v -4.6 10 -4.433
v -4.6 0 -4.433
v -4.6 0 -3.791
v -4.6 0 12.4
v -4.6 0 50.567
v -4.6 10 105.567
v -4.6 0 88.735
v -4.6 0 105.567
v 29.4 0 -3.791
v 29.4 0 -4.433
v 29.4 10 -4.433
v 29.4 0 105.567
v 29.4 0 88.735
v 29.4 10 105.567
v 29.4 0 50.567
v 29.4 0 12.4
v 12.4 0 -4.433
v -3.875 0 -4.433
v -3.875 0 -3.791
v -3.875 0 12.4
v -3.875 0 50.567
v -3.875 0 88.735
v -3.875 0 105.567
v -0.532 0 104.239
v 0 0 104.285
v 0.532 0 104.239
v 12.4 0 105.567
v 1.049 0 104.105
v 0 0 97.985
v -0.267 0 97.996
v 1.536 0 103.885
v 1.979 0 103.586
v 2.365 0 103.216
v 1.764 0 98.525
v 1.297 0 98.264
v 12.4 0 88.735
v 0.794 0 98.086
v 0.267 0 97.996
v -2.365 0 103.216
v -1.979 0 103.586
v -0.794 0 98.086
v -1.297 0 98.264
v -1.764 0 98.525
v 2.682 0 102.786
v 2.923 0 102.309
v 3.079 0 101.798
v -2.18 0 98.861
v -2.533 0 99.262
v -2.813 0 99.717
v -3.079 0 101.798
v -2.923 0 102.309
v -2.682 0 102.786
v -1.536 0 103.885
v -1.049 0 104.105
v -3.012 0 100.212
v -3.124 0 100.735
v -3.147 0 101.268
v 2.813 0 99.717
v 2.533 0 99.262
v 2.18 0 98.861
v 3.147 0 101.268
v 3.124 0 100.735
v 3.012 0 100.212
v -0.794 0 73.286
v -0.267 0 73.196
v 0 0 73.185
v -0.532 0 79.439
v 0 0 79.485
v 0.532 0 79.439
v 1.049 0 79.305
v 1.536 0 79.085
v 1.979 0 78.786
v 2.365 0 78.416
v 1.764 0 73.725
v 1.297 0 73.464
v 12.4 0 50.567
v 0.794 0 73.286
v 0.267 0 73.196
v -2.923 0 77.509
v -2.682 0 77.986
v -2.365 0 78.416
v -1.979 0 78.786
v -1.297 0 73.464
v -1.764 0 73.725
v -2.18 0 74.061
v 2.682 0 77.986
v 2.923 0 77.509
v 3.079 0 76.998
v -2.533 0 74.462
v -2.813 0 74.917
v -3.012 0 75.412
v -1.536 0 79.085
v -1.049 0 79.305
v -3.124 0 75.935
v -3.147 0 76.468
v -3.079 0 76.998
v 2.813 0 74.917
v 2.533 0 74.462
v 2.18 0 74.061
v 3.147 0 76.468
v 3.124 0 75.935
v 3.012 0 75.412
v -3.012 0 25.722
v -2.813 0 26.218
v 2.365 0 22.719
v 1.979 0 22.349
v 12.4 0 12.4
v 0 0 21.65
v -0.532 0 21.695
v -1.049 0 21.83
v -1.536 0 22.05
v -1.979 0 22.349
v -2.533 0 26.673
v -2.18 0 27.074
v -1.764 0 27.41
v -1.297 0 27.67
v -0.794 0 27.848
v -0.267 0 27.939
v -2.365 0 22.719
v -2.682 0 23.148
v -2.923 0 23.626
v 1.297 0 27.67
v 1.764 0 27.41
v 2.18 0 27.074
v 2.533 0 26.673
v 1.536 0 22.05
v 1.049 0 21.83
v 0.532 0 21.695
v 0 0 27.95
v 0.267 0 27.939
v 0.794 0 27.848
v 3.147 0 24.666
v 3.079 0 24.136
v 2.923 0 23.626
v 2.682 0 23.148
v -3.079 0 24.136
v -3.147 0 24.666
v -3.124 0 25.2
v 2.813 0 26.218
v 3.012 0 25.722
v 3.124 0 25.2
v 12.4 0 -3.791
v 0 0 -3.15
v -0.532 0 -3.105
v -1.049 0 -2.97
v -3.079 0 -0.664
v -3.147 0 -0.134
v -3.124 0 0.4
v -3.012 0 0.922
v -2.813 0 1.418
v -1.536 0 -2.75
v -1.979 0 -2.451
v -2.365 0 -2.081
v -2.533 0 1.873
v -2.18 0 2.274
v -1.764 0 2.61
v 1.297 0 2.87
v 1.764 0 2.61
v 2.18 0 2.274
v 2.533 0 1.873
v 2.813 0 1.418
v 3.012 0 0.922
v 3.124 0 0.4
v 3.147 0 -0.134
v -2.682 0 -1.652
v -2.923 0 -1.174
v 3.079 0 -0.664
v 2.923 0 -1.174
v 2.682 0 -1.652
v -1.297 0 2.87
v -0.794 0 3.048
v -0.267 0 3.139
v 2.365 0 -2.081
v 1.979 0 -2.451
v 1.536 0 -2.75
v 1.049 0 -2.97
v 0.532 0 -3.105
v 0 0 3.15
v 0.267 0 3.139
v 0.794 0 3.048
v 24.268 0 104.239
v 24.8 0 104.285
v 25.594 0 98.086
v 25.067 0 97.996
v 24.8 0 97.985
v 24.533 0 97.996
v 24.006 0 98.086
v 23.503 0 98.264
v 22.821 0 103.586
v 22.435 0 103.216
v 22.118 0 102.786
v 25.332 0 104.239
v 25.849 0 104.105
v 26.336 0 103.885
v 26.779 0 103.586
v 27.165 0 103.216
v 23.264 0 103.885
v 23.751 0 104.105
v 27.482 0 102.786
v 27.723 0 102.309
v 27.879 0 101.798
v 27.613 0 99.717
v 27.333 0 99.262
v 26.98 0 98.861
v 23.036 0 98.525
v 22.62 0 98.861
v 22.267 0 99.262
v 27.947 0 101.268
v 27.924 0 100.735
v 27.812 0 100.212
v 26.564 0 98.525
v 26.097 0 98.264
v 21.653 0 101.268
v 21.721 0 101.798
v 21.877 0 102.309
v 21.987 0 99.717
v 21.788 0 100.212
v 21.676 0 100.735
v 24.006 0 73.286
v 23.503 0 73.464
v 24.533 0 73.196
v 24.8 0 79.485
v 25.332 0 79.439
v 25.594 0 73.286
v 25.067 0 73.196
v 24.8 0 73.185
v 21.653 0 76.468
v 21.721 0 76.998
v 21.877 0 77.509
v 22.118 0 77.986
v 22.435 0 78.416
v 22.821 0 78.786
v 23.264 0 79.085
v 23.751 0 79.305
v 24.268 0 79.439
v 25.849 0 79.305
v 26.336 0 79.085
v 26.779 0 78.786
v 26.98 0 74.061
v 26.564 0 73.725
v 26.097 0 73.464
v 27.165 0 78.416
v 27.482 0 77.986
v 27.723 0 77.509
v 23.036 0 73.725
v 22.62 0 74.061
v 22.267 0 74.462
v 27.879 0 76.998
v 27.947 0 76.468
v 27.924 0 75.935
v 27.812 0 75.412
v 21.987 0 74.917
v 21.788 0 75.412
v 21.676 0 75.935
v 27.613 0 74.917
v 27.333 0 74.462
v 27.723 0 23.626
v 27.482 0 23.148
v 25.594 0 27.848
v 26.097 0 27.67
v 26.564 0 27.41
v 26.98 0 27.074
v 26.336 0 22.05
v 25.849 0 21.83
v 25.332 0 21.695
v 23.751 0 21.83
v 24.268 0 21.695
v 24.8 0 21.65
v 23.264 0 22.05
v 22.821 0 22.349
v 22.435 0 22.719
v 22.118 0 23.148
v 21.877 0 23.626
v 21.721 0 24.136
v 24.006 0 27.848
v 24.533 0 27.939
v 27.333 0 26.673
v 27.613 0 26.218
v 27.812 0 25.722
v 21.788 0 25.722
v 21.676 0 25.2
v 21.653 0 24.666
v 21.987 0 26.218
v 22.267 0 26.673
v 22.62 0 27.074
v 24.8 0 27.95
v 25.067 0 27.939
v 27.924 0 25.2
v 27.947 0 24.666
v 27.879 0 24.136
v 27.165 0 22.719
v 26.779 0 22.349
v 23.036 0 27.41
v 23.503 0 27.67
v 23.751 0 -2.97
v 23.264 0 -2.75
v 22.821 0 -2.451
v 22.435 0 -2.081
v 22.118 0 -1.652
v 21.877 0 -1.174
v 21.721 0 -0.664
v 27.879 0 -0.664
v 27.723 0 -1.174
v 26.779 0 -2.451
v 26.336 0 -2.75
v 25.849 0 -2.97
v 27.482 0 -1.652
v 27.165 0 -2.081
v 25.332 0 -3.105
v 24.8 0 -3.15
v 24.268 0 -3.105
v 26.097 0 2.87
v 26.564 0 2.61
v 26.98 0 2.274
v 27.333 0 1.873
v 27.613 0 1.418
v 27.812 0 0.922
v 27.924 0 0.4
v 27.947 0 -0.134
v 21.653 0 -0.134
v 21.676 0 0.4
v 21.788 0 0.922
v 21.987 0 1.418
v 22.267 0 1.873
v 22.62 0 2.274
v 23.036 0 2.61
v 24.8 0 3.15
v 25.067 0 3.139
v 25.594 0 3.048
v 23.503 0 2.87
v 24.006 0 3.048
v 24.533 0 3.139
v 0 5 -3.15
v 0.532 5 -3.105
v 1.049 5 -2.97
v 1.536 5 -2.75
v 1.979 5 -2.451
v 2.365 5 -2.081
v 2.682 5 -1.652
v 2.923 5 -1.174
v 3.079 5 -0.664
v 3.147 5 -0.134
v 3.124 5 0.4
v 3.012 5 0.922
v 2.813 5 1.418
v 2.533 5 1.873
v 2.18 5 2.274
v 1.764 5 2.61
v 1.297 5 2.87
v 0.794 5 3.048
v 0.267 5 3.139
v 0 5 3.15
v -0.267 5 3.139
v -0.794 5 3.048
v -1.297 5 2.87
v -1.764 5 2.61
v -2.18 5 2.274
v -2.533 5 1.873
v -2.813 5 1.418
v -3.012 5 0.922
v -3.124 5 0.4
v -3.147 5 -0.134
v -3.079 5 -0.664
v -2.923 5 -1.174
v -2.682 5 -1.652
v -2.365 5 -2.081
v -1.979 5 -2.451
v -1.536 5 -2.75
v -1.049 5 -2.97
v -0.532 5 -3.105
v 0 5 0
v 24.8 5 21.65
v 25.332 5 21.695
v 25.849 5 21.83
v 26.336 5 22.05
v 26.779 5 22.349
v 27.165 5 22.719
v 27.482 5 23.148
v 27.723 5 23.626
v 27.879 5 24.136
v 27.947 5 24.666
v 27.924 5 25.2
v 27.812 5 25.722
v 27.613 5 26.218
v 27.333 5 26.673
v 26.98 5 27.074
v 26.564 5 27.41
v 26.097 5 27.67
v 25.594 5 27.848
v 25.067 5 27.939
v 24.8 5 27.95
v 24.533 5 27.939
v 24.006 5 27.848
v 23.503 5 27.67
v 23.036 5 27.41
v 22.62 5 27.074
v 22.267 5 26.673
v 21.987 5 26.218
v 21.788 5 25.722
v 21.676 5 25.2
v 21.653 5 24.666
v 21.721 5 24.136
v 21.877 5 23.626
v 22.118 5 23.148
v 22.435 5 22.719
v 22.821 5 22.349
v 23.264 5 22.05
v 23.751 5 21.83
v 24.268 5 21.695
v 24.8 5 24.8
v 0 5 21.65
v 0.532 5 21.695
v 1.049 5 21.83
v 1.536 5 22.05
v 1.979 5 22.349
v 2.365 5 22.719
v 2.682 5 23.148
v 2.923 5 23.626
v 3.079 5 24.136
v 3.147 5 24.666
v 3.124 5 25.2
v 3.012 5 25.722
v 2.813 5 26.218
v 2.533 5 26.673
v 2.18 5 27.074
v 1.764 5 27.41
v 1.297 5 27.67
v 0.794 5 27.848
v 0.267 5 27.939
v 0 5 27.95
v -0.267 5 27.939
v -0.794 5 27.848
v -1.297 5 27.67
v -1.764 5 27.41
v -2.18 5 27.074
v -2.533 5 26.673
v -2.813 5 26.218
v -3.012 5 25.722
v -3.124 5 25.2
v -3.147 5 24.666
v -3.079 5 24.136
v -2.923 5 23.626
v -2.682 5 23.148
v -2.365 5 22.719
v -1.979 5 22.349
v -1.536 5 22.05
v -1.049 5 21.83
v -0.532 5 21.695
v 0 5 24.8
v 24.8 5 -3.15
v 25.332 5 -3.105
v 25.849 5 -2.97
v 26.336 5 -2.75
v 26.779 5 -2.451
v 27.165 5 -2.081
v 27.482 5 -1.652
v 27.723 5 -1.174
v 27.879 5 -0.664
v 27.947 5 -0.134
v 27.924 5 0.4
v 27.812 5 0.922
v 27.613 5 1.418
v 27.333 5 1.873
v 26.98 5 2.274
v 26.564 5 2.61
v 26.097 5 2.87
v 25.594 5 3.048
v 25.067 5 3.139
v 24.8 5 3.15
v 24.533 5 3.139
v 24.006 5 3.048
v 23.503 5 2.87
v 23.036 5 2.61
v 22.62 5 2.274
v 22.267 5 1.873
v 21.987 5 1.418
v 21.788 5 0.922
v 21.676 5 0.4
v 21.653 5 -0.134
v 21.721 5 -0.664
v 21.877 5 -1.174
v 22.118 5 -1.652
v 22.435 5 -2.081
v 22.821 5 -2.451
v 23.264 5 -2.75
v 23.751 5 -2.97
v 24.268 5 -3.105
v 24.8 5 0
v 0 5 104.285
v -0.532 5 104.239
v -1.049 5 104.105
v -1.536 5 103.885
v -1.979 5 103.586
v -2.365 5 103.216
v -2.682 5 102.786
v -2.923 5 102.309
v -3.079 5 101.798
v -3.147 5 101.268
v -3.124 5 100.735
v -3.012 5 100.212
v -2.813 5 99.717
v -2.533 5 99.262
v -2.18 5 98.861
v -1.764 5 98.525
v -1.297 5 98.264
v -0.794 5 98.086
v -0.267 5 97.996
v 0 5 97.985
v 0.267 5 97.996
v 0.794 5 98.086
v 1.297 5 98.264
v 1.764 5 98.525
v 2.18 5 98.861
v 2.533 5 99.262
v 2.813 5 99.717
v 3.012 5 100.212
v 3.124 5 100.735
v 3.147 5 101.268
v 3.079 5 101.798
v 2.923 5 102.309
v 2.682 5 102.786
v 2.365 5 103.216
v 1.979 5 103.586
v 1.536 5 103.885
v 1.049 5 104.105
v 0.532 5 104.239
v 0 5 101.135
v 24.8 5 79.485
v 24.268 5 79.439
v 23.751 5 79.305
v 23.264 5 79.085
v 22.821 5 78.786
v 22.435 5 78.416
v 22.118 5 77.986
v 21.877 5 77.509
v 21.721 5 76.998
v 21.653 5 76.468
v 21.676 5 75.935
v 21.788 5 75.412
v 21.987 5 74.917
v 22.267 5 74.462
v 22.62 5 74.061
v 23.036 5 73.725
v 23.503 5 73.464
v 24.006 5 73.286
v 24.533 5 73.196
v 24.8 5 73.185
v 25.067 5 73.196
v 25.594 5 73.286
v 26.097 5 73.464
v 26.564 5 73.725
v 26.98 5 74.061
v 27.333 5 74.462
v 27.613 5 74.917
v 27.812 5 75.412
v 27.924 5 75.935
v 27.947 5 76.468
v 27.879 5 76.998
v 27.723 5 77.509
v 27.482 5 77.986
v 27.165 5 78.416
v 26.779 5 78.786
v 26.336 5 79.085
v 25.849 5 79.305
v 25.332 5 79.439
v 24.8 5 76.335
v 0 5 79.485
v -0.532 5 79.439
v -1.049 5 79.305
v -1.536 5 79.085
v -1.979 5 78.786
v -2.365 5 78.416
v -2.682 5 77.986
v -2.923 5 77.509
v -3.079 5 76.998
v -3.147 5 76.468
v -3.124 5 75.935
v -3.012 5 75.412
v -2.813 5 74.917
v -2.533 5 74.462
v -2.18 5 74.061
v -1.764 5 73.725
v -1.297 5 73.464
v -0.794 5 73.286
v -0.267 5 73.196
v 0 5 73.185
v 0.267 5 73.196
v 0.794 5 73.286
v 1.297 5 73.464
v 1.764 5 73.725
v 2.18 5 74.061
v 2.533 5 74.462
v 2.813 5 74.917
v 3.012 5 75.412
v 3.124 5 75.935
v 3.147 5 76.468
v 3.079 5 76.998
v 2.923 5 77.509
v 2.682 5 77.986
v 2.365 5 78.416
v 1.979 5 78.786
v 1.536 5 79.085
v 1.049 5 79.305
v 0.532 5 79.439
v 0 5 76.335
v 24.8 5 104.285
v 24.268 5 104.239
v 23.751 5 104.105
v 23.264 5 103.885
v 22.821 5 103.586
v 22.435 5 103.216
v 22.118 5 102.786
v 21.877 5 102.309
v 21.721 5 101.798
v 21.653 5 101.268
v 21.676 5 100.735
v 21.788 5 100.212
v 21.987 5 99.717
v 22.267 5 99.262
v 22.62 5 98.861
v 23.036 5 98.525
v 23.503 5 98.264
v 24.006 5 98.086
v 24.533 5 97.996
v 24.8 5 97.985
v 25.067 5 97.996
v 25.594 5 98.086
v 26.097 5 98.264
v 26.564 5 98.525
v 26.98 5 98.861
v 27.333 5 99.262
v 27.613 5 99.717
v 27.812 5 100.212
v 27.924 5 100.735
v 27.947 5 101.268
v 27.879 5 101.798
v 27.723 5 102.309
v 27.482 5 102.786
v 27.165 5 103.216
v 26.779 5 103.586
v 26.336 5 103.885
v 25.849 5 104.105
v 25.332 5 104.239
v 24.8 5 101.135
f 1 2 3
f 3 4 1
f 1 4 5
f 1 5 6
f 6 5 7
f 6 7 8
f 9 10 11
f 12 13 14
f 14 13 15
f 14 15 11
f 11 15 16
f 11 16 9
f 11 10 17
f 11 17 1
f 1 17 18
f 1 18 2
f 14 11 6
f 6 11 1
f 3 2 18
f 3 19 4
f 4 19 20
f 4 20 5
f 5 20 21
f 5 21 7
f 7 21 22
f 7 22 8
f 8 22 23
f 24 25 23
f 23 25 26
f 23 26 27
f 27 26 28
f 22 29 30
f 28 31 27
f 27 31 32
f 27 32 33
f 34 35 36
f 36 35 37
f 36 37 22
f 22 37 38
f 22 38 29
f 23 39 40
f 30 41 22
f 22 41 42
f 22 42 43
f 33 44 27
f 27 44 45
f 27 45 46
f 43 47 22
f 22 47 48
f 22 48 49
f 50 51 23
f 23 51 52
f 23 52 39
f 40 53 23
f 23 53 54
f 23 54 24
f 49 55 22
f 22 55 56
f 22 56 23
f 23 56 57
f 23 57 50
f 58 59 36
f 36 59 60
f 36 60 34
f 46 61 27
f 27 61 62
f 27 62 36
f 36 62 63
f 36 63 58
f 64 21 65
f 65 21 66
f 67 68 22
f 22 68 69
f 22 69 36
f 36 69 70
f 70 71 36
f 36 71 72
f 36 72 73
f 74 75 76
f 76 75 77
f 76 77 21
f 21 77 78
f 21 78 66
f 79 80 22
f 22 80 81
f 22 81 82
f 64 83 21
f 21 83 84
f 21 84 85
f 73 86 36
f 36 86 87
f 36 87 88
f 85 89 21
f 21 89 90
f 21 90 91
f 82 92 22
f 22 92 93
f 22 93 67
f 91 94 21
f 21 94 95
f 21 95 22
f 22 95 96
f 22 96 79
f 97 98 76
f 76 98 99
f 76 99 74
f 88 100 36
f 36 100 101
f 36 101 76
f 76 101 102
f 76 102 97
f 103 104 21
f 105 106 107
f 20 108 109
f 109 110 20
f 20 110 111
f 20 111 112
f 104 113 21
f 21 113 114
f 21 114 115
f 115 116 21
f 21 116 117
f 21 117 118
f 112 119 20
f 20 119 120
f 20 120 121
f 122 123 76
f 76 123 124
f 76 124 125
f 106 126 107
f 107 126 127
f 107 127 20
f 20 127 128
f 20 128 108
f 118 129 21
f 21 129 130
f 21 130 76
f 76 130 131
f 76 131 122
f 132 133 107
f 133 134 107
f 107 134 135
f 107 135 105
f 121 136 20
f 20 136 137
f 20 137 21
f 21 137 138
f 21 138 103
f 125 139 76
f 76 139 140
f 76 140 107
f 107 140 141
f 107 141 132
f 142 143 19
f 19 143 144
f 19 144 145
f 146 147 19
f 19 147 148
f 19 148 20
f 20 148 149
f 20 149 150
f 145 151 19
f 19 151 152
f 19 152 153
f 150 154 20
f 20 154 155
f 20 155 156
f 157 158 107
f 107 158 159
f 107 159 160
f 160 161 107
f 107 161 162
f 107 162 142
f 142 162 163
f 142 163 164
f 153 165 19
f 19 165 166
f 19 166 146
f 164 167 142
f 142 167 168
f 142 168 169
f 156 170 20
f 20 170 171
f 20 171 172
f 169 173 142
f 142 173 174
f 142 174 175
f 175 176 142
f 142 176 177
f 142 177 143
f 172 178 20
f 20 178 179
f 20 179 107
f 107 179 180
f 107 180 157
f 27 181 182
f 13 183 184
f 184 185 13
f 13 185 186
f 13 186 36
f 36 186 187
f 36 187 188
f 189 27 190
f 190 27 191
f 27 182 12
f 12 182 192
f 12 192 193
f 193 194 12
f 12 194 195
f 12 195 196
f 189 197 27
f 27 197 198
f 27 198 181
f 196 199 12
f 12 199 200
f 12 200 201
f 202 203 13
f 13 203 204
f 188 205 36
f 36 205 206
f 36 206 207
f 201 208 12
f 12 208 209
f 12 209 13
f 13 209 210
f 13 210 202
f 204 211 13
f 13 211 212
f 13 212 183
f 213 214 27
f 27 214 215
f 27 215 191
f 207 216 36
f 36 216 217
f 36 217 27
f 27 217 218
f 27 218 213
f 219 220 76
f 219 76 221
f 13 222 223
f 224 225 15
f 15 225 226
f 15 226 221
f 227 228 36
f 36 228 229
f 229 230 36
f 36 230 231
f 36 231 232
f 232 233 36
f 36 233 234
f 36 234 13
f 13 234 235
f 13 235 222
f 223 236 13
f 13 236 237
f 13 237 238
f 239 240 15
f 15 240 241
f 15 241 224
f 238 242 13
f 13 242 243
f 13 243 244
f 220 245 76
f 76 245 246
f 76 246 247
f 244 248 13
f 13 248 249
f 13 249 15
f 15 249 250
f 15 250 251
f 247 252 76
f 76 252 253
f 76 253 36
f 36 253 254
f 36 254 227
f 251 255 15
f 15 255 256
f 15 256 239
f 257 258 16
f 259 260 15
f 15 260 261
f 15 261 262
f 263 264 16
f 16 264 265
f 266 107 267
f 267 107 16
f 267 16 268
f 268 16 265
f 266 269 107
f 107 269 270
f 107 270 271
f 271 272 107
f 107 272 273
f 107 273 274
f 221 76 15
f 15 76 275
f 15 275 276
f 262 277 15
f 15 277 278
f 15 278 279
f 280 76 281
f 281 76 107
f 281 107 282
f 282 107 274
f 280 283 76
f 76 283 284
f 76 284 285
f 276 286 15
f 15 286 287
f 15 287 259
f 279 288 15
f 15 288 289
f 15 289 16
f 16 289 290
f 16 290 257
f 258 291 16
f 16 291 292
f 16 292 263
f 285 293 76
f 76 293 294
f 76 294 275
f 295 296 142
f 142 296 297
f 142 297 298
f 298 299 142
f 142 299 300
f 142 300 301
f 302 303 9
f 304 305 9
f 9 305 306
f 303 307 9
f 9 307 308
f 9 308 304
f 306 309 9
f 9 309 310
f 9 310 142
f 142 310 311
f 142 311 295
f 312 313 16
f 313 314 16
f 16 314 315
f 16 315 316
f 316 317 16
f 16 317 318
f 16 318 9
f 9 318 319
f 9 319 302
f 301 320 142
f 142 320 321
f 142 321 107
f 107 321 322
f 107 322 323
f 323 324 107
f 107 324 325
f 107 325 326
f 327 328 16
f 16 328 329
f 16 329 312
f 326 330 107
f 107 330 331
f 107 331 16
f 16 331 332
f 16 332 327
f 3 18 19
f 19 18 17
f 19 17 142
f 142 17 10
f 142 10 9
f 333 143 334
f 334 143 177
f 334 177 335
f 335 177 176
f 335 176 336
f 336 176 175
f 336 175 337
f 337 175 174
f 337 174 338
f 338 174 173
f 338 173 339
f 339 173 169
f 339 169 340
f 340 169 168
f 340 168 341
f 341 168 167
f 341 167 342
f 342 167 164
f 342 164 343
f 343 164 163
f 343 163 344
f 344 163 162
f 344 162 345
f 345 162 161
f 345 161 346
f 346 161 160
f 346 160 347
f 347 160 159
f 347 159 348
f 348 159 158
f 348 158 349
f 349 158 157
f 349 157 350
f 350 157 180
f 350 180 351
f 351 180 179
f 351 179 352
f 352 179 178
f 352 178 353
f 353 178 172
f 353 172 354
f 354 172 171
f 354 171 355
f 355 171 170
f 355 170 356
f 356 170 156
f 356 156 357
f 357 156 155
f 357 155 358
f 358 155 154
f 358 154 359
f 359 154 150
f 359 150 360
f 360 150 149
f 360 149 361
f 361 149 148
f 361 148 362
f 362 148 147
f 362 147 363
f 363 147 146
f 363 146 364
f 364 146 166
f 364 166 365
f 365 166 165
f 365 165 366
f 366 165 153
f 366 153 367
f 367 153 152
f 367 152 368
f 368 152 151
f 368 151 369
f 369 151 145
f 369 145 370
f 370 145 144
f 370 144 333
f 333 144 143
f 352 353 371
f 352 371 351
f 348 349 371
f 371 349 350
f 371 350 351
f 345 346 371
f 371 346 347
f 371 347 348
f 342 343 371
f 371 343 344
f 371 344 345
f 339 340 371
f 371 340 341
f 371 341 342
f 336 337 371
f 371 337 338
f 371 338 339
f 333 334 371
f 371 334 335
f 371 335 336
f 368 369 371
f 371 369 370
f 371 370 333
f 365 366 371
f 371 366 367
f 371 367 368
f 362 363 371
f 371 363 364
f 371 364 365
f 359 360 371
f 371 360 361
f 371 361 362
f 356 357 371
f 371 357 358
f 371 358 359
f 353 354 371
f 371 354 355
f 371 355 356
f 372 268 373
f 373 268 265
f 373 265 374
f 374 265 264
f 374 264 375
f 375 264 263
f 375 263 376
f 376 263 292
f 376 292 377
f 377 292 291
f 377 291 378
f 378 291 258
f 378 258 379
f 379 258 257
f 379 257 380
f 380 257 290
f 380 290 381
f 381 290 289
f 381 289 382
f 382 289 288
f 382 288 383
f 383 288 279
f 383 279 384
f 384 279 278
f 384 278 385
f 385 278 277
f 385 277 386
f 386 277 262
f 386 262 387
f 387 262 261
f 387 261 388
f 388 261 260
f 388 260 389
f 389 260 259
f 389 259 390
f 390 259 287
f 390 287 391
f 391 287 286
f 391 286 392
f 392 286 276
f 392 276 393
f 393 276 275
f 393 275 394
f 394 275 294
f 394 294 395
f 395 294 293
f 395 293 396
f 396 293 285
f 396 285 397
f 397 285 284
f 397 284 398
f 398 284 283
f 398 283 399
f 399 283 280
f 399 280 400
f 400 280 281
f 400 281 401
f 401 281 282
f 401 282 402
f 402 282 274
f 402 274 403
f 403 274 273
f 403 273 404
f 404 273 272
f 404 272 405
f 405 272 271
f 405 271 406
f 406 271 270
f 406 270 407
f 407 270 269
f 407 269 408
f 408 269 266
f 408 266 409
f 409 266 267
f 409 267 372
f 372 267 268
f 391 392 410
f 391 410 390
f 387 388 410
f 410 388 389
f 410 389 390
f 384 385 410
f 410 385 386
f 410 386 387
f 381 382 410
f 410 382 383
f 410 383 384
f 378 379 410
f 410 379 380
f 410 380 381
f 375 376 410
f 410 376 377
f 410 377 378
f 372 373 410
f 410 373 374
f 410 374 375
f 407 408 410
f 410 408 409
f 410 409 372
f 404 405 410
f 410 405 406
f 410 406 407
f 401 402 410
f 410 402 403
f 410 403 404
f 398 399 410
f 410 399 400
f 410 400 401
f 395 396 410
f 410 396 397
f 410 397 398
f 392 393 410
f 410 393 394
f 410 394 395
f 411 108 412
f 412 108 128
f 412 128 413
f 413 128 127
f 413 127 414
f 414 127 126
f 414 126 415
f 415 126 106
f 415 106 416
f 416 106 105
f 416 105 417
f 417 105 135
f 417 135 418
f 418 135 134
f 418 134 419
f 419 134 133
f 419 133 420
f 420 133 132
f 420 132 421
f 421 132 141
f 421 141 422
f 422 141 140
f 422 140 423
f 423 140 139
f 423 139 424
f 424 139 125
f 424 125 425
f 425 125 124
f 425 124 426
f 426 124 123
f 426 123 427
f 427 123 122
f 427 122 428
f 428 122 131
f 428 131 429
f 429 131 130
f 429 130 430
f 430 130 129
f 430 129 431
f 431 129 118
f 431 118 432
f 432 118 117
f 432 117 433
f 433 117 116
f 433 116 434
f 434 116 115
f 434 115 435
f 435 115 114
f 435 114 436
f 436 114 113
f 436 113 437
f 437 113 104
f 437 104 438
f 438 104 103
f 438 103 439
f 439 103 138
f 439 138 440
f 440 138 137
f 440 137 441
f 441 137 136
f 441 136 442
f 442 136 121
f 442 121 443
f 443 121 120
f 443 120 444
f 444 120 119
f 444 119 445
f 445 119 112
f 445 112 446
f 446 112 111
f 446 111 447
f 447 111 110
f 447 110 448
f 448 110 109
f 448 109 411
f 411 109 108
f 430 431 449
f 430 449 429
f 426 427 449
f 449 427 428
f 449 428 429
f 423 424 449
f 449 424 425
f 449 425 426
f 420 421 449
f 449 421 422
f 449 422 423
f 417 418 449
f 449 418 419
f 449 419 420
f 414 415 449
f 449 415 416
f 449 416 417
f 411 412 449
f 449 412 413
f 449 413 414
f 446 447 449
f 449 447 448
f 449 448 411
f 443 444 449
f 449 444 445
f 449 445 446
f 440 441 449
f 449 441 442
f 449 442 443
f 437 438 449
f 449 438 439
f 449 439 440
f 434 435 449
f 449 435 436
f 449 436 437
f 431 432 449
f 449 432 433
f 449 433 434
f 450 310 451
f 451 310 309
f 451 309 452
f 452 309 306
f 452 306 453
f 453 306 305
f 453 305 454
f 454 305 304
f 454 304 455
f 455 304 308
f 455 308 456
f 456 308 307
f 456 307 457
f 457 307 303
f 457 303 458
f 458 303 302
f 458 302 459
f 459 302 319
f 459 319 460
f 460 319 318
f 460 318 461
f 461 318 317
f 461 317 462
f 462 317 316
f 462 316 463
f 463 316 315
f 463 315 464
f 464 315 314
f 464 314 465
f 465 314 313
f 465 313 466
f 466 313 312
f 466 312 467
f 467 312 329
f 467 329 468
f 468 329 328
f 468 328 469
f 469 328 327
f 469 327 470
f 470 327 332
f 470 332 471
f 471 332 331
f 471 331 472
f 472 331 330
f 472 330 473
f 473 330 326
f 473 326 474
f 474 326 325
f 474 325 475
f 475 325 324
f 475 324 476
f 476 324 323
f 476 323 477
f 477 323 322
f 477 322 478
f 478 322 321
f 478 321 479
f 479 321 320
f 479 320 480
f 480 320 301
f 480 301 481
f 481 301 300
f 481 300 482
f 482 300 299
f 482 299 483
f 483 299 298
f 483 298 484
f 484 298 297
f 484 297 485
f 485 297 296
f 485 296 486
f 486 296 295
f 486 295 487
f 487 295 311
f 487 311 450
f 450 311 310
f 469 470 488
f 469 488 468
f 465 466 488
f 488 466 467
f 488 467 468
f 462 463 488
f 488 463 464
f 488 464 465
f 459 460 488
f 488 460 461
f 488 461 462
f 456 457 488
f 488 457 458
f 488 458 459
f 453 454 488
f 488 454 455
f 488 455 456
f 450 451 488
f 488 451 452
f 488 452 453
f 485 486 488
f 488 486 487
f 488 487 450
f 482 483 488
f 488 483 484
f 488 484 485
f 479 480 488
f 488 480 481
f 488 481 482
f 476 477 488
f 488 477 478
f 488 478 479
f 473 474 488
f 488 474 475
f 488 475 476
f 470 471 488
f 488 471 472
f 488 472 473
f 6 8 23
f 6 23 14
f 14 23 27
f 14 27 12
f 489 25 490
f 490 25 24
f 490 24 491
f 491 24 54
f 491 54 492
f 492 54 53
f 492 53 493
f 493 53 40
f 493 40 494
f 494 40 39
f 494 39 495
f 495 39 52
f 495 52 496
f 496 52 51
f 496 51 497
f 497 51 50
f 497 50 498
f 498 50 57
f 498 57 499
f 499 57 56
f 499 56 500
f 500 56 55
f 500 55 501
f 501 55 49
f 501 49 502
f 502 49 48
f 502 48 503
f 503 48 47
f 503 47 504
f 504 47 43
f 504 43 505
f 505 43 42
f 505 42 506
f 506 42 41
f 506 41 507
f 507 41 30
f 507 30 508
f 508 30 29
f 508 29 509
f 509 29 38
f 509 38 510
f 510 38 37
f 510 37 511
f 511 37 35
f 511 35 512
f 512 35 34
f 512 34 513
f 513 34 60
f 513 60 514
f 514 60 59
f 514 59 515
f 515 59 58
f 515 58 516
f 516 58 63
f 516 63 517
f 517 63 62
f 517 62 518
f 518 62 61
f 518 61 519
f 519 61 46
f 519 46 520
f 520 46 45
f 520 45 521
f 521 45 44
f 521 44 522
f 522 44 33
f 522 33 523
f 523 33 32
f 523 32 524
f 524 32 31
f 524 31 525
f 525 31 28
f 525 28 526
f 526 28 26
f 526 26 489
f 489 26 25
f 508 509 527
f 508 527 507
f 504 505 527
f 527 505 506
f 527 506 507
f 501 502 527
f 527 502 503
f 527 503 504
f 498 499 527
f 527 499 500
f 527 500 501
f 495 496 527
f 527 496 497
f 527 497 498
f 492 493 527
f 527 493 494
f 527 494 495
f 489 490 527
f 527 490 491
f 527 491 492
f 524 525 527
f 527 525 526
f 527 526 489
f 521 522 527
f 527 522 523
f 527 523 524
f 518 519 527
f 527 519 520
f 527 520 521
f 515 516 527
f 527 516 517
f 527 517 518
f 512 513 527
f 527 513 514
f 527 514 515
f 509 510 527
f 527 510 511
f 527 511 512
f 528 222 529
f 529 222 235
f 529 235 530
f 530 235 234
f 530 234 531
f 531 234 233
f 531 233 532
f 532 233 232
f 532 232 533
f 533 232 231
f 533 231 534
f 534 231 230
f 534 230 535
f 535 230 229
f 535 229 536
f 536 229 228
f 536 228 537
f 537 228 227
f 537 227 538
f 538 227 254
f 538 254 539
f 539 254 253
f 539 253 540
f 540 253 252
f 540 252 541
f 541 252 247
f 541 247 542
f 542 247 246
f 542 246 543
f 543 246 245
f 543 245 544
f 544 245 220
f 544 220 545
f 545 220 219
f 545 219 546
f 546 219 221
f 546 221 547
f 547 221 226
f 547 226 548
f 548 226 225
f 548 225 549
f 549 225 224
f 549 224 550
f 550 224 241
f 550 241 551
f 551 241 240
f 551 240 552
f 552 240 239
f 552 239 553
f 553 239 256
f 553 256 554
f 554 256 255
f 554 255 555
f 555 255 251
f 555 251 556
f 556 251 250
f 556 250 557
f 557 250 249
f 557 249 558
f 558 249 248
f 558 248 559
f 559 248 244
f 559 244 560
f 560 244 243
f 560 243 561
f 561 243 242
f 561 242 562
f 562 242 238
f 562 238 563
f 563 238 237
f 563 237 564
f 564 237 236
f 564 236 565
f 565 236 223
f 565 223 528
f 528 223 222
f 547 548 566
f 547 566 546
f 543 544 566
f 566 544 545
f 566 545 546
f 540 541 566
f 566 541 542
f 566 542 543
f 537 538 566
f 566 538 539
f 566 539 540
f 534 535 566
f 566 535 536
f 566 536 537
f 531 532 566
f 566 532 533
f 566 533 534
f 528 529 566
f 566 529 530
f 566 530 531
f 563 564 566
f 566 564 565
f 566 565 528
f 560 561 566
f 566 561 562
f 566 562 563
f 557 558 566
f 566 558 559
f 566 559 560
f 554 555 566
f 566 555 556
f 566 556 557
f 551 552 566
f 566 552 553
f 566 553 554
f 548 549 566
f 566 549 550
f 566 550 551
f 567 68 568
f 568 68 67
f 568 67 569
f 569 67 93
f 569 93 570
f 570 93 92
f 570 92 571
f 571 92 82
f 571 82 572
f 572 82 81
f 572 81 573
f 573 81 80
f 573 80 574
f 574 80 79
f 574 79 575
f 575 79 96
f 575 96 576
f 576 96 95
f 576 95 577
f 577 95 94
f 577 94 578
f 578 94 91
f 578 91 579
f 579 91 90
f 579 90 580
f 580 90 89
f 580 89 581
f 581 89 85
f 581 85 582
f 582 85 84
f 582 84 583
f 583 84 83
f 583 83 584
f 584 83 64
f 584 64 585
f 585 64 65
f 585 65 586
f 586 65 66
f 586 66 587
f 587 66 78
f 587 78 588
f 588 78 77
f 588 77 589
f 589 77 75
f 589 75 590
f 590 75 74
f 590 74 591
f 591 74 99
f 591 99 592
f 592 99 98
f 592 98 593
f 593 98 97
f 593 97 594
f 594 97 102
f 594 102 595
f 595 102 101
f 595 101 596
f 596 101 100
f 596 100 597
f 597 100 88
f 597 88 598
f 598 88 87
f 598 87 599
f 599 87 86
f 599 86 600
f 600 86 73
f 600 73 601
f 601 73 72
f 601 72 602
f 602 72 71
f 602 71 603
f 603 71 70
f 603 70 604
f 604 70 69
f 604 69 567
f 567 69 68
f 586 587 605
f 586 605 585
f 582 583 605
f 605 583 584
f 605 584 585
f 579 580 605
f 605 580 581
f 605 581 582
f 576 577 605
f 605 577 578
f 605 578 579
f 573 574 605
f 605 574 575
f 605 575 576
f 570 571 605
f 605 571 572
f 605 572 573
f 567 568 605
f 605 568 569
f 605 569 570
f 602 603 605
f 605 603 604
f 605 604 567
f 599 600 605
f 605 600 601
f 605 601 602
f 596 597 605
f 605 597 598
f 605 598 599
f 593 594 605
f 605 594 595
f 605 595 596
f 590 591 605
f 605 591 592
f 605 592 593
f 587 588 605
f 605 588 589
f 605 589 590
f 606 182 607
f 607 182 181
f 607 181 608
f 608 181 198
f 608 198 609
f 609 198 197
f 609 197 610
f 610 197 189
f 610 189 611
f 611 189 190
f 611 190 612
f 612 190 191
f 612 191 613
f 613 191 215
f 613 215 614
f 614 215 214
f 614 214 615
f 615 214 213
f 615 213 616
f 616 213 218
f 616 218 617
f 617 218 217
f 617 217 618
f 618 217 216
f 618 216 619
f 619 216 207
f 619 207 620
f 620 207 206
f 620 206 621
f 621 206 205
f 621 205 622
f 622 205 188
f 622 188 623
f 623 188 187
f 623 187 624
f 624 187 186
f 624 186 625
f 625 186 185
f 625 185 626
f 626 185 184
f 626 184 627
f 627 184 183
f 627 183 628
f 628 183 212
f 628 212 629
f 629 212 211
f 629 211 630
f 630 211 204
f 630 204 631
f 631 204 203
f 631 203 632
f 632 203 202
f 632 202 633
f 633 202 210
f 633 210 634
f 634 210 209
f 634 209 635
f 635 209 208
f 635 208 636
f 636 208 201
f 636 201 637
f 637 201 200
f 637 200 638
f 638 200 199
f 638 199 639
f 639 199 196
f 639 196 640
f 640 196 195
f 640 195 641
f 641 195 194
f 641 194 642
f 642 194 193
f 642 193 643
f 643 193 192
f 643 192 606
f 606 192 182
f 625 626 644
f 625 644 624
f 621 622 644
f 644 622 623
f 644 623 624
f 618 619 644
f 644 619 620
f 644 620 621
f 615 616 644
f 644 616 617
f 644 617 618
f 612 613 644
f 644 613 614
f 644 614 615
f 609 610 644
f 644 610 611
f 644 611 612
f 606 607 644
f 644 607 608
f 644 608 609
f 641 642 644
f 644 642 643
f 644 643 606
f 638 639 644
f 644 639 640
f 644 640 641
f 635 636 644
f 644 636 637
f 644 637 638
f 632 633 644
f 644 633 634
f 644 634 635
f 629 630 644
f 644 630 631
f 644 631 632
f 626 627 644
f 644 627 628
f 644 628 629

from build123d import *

# Parameters (mm, degrees)
SKETCH2_W           = 34
SKETCH2_H           = 55
BOSS_EXTRUDE1_DEPTH = 10
SKETCH1_R           = 3.15
CUT_EXTRUDE1_DEPTH  = 5


with BuildPart() as part:
    # Sketch2 → Boss-Extrude1 (new body)
    with BuildSketch(Plane(origin=(0, 0, 0), x_dir=(1, 0, 0), z_dir=(0, 1, 0))):
        with Locations((12.4, -23.06737043)):
            Rectangle(SKETCH2_W, SKETCH2_H)
    extrude(amount=BOSS_EXTRUDE1_DEPTH)

    # Sketch1 → Cut-Extrude1 (cut)
    with BuildSketch(Plane(origin=(0, 0, 0), x_dir=(1, 0, 0), z_dir=(0, 1, 0))):
        Circle(SKETCH1_R)
        with Locations((24.8, 0)):
            Circle(SKETCH1_R)
        with Locations((0, -24.8)):
            Circle(SKETCH1_R)
        with Locations((24.8, -24.8)):
            Circle(SKETCH1_R)
    extrude(amount=CUT_EXTRUDE1_DEPTH, mode=Mode.SUBTRACT)

    # Mirror1: part across plane


with BuildPart() as part_1:
    add(part.part)
    add(part.part.mirror(Plane(origin=(-4.6, 10, 50.56737043), x_dir=(1, 0, 0), z_dir=(0, 0, -1))))


solid = part_1.part
